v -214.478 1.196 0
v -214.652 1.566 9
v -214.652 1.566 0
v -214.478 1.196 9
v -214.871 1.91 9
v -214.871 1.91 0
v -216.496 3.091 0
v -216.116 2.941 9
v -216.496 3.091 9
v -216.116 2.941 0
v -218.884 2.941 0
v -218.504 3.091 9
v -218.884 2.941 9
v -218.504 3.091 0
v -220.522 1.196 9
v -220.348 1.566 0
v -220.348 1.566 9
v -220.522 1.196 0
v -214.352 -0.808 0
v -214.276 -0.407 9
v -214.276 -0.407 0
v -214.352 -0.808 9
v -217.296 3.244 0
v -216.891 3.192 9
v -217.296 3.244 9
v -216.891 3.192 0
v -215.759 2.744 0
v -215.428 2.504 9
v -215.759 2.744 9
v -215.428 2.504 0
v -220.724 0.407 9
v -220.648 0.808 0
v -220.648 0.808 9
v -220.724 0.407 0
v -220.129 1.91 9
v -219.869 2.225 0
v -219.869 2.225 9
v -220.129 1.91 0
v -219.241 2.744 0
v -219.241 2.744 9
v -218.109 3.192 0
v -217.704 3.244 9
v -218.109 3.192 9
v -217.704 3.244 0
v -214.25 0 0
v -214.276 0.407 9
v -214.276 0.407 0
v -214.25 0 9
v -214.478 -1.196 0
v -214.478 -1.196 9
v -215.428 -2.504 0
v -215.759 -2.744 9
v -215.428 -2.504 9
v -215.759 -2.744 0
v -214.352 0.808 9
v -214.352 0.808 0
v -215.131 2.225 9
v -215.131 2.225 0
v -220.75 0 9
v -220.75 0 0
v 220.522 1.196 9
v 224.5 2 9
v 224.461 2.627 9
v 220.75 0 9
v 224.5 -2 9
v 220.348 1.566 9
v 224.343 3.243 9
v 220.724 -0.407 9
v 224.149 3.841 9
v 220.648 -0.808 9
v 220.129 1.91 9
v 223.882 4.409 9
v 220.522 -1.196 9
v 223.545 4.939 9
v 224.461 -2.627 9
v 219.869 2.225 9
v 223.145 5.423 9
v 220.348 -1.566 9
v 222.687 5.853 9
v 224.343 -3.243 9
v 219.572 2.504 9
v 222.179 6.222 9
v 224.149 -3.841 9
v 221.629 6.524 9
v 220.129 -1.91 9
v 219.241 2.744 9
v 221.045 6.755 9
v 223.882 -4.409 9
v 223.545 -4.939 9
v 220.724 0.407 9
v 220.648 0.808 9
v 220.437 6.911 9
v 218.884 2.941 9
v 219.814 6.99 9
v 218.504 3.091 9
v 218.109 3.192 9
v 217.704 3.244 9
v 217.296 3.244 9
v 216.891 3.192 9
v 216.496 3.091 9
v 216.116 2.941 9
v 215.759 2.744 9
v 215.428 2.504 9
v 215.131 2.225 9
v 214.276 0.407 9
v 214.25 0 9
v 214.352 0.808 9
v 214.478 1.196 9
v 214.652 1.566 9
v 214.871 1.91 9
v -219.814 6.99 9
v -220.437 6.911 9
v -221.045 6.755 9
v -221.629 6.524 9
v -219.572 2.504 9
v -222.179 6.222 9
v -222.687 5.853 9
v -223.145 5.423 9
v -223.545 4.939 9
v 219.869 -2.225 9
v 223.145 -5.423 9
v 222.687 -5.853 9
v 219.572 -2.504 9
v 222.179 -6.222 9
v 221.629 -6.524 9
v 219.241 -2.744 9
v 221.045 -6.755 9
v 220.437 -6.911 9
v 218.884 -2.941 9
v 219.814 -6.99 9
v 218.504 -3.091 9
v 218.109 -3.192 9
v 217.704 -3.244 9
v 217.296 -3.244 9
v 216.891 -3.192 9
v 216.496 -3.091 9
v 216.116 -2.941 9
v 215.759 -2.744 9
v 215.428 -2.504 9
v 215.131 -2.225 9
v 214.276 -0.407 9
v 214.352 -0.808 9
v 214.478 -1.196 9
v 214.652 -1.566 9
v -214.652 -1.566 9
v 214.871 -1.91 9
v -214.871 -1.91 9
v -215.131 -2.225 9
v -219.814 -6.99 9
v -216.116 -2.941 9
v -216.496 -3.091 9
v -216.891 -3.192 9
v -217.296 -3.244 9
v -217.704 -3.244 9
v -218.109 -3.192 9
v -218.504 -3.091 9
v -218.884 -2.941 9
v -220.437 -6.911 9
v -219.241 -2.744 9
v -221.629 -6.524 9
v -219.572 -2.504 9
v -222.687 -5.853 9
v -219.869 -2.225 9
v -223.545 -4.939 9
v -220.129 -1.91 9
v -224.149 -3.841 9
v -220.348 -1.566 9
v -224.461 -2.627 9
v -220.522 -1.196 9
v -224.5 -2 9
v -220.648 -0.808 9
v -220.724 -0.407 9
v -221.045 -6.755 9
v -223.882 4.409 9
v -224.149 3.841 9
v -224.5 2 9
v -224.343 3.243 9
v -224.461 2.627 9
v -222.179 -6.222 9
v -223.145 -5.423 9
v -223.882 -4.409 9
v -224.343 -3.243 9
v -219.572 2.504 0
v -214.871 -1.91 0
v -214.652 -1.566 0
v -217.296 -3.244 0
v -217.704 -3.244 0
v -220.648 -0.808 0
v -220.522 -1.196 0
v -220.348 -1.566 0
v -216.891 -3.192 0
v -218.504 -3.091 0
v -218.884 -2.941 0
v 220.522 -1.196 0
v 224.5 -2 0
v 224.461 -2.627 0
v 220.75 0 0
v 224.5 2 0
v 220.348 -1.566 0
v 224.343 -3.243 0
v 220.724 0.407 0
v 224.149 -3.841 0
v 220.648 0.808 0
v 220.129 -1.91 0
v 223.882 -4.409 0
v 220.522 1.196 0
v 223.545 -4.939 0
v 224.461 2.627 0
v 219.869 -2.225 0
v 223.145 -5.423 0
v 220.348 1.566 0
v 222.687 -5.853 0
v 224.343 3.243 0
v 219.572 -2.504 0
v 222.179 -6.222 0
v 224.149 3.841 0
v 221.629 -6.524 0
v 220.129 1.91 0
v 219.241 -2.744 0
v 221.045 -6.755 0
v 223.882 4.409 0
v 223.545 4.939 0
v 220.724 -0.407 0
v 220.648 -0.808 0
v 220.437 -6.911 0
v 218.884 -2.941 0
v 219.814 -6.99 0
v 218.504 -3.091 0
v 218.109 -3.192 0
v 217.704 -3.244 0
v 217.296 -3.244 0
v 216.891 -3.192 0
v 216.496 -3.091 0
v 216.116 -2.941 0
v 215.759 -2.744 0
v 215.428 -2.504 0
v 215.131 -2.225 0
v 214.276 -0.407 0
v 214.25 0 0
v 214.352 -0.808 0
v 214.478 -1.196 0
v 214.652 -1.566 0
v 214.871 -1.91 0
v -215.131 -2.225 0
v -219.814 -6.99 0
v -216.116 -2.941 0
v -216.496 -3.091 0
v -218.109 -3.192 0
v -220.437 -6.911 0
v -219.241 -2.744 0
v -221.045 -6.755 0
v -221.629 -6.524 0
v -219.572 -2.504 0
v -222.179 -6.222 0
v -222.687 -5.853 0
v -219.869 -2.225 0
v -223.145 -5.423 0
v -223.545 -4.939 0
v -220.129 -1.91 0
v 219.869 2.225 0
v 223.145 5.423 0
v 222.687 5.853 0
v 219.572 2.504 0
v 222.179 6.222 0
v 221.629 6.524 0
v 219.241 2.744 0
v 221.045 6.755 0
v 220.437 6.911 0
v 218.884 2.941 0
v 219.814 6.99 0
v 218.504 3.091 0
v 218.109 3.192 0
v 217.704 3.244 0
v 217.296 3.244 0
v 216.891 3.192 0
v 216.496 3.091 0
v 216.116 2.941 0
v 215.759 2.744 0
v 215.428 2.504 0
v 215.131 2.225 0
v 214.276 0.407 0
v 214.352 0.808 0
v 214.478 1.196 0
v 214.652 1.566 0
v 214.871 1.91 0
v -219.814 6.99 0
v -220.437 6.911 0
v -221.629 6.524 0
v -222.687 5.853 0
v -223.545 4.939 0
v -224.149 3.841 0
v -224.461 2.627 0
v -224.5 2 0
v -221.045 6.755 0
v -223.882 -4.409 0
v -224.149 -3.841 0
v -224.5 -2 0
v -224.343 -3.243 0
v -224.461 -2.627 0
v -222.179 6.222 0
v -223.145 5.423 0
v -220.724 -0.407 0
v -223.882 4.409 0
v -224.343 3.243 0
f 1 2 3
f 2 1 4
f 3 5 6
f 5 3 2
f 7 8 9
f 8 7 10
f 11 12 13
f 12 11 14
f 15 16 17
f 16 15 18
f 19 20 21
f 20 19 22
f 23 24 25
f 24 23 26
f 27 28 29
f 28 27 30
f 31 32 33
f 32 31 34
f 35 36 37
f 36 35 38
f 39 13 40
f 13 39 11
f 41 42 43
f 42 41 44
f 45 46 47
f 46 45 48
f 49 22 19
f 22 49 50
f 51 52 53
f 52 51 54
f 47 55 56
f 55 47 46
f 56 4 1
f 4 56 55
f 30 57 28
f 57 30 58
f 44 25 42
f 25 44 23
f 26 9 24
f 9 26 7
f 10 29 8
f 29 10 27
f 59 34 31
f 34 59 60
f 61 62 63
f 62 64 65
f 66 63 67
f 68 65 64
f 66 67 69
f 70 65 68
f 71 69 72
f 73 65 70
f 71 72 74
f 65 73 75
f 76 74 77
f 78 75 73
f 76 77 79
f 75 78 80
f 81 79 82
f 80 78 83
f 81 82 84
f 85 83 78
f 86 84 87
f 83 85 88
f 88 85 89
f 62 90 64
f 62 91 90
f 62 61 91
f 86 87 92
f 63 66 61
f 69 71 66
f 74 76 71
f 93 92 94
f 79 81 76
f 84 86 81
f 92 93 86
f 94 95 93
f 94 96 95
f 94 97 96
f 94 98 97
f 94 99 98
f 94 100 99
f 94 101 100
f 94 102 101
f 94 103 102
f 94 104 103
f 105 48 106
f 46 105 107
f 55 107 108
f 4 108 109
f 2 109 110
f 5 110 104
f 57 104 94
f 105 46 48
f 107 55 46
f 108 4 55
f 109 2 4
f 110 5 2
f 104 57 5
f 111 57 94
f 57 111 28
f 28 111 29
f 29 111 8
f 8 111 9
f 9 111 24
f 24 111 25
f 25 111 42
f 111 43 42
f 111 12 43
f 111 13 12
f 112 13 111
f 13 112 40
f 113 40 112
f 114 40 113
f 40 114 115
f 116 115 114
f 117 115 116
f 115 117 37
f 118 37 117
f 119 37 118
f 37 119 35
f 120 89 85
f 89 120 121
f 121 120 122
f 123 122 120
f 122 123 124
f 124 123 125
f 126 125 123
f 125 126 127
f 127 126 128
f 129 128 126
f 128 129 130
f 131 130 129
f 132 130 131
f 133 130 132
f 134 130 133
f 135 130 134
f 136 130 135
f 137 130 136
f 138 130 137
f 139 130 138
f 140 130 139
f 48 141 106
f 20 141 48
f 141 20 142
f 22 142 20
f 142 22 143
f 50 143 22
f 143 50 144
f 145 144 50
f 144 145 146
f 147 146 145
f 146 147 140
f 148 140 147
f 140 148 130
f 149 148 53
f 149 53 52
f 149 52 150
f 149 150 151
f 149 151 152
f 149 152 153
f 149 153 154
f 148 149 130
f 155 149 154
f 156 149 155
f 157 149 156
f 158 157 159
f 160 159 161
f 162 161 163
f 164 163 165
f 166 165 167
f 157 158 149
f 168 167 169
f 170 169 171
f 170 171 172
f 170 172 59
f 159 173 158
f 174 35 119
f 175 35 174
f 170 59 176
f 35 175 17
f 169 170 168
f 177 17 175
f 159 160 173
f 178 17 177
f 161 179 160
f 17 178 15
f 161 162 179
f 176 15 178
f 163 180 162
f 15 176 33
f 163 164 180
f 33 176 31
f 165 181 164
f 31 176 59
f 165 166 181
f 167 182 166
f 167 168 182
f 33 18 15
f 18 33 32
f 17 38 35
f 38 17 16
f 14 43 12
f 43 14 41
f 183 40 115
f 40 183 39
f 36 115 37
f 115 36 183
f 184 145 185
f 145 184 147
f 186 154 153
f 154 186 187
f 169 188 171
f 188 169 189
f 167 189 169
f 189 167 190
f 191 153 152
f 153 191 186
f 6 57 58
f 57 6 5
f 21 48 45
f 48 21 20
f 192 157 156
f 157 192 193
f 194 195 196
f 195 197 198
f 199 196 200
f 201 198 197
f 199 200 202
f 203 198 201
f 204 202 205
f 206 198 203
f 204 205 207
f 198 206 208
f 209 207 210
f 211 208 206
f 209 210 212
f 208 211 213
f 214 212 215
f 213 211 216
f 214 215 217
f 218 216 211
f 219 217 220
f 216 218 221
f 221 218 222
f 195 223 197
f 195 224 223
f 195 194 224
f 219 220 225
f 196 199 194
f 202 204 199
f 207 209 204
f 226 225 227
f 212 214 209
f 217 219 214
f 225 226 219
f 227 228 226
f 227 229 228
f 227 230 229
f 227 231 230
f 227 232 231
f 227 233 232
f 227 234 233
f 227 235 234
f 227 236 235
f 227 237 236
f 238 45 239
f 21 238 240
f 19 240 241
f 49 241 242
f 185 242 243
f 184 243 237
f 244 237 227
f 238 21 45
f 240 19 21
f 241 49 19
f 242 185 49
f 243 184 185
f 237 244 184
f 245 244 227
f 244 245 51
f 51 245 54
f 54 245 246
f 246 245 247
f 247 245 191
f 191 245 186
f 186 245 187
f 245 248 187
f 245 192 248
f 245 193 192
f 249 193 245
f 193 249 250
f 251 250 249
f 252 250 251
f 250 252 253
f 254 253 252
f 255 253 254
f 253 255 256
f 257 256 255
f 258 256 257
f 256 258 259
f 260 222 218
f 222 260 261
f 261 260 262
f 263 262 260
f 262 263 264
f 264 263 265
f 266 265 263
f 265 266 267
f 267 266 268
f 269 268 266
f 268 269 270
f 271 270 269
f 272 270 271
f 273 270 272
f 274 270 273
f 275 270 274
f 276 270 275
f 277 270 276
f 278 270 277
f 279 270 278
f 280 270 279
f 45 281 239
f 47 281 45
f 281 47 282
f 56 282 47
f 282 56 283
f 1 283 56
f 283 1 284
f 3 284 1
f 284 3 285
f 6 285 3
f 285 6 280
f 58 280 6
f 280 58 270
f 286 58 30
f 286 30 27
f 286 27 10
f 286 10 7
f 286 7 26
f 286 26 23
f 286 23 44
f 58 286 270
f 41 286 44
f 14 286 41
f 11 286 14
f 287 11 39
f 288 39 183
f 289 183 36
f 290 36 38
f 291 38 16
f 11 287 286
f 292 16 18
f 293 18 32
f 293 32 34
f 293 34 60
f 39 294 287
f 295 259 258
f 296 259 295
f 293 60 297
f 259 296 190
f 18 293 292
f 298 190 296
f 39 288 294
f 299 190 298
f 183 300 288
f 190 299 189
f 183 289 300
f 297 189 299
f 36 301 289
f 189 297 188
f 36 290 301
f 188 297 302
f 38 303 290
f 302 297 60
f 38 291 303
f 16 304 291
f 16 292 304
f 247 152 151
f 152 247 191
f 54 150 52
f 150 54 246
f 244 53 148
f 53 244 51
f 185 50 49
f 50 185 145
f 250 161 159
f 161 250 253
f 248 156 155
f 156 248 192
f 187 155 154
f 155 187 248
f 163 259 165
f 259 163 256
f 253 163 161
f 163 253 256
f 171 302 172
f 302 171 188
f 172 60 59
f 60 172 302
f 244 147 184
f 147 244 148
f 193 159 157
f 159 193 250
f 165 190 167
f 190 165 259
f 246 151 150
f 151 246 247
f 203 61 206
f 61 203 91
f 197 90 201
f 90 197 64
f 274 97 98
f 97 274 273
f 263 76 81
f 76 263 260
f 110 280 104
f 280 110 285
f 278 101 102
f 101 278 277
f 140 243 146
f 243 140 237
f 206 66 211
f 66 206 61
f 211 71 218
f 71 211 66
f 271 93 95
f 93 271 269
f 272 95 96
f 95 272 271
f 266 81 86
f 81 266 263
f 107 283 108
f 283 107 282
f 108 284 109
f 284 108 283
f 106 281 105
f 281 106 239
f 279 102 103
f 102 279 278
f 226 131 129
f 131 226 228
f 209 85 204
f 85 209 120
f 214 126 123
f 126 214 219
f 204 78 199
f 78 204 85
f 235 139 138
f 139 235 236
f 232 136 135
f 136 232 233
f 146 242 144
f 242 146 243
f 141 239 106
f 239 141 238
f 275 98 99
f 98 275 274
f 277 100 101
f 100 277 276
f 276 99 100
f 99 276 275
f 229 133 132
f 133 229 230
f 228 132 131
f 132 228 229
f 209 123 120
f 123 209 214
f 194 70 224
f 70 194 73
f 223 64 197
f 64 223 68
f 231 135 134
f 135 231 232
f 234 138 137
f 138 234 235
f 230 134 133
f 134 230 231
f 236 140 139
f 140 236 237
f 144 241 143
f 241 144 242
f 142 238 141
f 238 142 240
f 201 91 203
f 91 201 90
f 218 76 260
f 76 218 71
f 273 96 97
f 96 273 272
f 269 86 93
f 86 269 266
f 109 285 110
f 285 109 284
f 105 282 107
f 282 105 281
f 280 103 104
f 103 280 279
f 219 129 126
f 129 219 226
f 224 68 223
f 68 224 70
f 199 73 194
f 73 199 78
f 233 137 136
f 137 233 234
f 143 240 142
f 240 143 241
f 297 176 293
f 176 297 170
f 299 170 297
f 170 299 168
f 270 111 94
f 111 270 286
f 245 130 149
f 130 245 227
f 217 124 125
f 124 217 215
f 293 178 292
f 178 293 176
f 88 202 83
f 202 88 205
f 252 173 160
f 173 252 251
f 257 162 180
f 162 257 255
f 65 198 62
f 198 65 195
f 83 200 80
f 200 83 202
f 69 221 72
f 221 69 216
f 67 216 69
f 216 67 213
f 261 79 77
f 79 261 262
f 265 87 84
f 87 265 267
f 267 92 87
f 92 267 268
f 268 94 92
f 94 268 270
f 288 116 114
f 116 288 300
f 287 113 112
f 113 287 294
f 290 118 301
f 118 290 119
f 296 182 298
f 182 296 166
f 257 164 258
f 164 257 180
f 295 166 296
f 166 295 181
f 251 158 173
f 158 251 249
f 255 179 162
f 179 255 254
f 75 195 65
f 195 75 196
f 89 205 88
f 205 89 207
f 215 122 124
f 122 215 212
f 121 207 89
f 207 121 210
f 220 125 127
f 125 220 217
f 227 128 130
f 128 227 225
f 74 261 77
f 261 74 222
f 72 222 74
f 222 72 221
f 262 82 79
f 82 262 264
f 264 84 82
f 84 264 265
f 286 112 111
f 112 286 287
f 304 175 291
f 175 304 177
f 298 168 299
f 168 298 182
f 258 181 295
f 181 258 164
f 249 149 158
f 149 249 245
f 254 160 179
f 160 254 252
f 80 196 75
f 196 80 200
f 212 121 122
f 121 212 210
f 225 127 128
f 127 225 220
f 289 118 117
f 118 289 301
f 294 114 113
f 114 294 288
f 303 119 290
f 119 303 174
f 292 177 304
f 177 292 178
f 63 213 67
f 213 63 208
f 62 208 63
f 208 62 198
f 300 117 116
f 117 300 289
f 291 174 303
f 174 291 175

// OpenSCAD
$fn = 50;


difference() {
	union() {
		hull() {
			translate(v = [-219.5000000000, 2.0000000000, 0]) {
				cylinder(h = 9, r = 5);
			}
			translate(v = [219.5000000000, 2.0000000000, 0]) {
				cylinder(h = 9, r = 5);
			}
			translate(v = [-219.5000000000, -2.0000000000, 0]) {
				cylinder(h = 9, r = 5);
			}
			translate(v = [219.5000000000, -2.0000000000, 0]) {
				cylinder(h = 9, r = 5);
			}
		}
	}
	union() {
		translate(v = [-217.5000000000, 0.0000000000, 0]) {
			cylinder(h = 9, r = 3.2500000000);
		}
		translate(v = [217.5000000000, 0.0000000000, 0]) {
			cylinder(h = 9, r = 3.2500000000);
		}
		translate(v = [-217.5000000000, 0.0000000000, 0]) {
			cylinder(h = 9, r = 1.8000000000);
		}
		translate(v = [217.5000000000, 0.0000000000, 0]) {
			cylinder(h = 9, r = 1.8000000000);
		}
		translate(v = [-217.5000000000, 0.0000000000, 0]) {
			cylinder(h = 9, r = 1.8000000000);
		}
		translate(v = [217.5000000000, 0.0000000000, 0]) {
			cylinder(h = 9, r = 1.8000000000);
		}
		translate(v = [-217.5000000000, 0.0000000000, 0]) {
			cylinder(h = 9, r = 1.8000000000);
		}
		translate(v = [217.5000000000, 0.0000000000, 0]) {
			cylinder(h = 9, r = 1.8000000000);
		}
	}
}
